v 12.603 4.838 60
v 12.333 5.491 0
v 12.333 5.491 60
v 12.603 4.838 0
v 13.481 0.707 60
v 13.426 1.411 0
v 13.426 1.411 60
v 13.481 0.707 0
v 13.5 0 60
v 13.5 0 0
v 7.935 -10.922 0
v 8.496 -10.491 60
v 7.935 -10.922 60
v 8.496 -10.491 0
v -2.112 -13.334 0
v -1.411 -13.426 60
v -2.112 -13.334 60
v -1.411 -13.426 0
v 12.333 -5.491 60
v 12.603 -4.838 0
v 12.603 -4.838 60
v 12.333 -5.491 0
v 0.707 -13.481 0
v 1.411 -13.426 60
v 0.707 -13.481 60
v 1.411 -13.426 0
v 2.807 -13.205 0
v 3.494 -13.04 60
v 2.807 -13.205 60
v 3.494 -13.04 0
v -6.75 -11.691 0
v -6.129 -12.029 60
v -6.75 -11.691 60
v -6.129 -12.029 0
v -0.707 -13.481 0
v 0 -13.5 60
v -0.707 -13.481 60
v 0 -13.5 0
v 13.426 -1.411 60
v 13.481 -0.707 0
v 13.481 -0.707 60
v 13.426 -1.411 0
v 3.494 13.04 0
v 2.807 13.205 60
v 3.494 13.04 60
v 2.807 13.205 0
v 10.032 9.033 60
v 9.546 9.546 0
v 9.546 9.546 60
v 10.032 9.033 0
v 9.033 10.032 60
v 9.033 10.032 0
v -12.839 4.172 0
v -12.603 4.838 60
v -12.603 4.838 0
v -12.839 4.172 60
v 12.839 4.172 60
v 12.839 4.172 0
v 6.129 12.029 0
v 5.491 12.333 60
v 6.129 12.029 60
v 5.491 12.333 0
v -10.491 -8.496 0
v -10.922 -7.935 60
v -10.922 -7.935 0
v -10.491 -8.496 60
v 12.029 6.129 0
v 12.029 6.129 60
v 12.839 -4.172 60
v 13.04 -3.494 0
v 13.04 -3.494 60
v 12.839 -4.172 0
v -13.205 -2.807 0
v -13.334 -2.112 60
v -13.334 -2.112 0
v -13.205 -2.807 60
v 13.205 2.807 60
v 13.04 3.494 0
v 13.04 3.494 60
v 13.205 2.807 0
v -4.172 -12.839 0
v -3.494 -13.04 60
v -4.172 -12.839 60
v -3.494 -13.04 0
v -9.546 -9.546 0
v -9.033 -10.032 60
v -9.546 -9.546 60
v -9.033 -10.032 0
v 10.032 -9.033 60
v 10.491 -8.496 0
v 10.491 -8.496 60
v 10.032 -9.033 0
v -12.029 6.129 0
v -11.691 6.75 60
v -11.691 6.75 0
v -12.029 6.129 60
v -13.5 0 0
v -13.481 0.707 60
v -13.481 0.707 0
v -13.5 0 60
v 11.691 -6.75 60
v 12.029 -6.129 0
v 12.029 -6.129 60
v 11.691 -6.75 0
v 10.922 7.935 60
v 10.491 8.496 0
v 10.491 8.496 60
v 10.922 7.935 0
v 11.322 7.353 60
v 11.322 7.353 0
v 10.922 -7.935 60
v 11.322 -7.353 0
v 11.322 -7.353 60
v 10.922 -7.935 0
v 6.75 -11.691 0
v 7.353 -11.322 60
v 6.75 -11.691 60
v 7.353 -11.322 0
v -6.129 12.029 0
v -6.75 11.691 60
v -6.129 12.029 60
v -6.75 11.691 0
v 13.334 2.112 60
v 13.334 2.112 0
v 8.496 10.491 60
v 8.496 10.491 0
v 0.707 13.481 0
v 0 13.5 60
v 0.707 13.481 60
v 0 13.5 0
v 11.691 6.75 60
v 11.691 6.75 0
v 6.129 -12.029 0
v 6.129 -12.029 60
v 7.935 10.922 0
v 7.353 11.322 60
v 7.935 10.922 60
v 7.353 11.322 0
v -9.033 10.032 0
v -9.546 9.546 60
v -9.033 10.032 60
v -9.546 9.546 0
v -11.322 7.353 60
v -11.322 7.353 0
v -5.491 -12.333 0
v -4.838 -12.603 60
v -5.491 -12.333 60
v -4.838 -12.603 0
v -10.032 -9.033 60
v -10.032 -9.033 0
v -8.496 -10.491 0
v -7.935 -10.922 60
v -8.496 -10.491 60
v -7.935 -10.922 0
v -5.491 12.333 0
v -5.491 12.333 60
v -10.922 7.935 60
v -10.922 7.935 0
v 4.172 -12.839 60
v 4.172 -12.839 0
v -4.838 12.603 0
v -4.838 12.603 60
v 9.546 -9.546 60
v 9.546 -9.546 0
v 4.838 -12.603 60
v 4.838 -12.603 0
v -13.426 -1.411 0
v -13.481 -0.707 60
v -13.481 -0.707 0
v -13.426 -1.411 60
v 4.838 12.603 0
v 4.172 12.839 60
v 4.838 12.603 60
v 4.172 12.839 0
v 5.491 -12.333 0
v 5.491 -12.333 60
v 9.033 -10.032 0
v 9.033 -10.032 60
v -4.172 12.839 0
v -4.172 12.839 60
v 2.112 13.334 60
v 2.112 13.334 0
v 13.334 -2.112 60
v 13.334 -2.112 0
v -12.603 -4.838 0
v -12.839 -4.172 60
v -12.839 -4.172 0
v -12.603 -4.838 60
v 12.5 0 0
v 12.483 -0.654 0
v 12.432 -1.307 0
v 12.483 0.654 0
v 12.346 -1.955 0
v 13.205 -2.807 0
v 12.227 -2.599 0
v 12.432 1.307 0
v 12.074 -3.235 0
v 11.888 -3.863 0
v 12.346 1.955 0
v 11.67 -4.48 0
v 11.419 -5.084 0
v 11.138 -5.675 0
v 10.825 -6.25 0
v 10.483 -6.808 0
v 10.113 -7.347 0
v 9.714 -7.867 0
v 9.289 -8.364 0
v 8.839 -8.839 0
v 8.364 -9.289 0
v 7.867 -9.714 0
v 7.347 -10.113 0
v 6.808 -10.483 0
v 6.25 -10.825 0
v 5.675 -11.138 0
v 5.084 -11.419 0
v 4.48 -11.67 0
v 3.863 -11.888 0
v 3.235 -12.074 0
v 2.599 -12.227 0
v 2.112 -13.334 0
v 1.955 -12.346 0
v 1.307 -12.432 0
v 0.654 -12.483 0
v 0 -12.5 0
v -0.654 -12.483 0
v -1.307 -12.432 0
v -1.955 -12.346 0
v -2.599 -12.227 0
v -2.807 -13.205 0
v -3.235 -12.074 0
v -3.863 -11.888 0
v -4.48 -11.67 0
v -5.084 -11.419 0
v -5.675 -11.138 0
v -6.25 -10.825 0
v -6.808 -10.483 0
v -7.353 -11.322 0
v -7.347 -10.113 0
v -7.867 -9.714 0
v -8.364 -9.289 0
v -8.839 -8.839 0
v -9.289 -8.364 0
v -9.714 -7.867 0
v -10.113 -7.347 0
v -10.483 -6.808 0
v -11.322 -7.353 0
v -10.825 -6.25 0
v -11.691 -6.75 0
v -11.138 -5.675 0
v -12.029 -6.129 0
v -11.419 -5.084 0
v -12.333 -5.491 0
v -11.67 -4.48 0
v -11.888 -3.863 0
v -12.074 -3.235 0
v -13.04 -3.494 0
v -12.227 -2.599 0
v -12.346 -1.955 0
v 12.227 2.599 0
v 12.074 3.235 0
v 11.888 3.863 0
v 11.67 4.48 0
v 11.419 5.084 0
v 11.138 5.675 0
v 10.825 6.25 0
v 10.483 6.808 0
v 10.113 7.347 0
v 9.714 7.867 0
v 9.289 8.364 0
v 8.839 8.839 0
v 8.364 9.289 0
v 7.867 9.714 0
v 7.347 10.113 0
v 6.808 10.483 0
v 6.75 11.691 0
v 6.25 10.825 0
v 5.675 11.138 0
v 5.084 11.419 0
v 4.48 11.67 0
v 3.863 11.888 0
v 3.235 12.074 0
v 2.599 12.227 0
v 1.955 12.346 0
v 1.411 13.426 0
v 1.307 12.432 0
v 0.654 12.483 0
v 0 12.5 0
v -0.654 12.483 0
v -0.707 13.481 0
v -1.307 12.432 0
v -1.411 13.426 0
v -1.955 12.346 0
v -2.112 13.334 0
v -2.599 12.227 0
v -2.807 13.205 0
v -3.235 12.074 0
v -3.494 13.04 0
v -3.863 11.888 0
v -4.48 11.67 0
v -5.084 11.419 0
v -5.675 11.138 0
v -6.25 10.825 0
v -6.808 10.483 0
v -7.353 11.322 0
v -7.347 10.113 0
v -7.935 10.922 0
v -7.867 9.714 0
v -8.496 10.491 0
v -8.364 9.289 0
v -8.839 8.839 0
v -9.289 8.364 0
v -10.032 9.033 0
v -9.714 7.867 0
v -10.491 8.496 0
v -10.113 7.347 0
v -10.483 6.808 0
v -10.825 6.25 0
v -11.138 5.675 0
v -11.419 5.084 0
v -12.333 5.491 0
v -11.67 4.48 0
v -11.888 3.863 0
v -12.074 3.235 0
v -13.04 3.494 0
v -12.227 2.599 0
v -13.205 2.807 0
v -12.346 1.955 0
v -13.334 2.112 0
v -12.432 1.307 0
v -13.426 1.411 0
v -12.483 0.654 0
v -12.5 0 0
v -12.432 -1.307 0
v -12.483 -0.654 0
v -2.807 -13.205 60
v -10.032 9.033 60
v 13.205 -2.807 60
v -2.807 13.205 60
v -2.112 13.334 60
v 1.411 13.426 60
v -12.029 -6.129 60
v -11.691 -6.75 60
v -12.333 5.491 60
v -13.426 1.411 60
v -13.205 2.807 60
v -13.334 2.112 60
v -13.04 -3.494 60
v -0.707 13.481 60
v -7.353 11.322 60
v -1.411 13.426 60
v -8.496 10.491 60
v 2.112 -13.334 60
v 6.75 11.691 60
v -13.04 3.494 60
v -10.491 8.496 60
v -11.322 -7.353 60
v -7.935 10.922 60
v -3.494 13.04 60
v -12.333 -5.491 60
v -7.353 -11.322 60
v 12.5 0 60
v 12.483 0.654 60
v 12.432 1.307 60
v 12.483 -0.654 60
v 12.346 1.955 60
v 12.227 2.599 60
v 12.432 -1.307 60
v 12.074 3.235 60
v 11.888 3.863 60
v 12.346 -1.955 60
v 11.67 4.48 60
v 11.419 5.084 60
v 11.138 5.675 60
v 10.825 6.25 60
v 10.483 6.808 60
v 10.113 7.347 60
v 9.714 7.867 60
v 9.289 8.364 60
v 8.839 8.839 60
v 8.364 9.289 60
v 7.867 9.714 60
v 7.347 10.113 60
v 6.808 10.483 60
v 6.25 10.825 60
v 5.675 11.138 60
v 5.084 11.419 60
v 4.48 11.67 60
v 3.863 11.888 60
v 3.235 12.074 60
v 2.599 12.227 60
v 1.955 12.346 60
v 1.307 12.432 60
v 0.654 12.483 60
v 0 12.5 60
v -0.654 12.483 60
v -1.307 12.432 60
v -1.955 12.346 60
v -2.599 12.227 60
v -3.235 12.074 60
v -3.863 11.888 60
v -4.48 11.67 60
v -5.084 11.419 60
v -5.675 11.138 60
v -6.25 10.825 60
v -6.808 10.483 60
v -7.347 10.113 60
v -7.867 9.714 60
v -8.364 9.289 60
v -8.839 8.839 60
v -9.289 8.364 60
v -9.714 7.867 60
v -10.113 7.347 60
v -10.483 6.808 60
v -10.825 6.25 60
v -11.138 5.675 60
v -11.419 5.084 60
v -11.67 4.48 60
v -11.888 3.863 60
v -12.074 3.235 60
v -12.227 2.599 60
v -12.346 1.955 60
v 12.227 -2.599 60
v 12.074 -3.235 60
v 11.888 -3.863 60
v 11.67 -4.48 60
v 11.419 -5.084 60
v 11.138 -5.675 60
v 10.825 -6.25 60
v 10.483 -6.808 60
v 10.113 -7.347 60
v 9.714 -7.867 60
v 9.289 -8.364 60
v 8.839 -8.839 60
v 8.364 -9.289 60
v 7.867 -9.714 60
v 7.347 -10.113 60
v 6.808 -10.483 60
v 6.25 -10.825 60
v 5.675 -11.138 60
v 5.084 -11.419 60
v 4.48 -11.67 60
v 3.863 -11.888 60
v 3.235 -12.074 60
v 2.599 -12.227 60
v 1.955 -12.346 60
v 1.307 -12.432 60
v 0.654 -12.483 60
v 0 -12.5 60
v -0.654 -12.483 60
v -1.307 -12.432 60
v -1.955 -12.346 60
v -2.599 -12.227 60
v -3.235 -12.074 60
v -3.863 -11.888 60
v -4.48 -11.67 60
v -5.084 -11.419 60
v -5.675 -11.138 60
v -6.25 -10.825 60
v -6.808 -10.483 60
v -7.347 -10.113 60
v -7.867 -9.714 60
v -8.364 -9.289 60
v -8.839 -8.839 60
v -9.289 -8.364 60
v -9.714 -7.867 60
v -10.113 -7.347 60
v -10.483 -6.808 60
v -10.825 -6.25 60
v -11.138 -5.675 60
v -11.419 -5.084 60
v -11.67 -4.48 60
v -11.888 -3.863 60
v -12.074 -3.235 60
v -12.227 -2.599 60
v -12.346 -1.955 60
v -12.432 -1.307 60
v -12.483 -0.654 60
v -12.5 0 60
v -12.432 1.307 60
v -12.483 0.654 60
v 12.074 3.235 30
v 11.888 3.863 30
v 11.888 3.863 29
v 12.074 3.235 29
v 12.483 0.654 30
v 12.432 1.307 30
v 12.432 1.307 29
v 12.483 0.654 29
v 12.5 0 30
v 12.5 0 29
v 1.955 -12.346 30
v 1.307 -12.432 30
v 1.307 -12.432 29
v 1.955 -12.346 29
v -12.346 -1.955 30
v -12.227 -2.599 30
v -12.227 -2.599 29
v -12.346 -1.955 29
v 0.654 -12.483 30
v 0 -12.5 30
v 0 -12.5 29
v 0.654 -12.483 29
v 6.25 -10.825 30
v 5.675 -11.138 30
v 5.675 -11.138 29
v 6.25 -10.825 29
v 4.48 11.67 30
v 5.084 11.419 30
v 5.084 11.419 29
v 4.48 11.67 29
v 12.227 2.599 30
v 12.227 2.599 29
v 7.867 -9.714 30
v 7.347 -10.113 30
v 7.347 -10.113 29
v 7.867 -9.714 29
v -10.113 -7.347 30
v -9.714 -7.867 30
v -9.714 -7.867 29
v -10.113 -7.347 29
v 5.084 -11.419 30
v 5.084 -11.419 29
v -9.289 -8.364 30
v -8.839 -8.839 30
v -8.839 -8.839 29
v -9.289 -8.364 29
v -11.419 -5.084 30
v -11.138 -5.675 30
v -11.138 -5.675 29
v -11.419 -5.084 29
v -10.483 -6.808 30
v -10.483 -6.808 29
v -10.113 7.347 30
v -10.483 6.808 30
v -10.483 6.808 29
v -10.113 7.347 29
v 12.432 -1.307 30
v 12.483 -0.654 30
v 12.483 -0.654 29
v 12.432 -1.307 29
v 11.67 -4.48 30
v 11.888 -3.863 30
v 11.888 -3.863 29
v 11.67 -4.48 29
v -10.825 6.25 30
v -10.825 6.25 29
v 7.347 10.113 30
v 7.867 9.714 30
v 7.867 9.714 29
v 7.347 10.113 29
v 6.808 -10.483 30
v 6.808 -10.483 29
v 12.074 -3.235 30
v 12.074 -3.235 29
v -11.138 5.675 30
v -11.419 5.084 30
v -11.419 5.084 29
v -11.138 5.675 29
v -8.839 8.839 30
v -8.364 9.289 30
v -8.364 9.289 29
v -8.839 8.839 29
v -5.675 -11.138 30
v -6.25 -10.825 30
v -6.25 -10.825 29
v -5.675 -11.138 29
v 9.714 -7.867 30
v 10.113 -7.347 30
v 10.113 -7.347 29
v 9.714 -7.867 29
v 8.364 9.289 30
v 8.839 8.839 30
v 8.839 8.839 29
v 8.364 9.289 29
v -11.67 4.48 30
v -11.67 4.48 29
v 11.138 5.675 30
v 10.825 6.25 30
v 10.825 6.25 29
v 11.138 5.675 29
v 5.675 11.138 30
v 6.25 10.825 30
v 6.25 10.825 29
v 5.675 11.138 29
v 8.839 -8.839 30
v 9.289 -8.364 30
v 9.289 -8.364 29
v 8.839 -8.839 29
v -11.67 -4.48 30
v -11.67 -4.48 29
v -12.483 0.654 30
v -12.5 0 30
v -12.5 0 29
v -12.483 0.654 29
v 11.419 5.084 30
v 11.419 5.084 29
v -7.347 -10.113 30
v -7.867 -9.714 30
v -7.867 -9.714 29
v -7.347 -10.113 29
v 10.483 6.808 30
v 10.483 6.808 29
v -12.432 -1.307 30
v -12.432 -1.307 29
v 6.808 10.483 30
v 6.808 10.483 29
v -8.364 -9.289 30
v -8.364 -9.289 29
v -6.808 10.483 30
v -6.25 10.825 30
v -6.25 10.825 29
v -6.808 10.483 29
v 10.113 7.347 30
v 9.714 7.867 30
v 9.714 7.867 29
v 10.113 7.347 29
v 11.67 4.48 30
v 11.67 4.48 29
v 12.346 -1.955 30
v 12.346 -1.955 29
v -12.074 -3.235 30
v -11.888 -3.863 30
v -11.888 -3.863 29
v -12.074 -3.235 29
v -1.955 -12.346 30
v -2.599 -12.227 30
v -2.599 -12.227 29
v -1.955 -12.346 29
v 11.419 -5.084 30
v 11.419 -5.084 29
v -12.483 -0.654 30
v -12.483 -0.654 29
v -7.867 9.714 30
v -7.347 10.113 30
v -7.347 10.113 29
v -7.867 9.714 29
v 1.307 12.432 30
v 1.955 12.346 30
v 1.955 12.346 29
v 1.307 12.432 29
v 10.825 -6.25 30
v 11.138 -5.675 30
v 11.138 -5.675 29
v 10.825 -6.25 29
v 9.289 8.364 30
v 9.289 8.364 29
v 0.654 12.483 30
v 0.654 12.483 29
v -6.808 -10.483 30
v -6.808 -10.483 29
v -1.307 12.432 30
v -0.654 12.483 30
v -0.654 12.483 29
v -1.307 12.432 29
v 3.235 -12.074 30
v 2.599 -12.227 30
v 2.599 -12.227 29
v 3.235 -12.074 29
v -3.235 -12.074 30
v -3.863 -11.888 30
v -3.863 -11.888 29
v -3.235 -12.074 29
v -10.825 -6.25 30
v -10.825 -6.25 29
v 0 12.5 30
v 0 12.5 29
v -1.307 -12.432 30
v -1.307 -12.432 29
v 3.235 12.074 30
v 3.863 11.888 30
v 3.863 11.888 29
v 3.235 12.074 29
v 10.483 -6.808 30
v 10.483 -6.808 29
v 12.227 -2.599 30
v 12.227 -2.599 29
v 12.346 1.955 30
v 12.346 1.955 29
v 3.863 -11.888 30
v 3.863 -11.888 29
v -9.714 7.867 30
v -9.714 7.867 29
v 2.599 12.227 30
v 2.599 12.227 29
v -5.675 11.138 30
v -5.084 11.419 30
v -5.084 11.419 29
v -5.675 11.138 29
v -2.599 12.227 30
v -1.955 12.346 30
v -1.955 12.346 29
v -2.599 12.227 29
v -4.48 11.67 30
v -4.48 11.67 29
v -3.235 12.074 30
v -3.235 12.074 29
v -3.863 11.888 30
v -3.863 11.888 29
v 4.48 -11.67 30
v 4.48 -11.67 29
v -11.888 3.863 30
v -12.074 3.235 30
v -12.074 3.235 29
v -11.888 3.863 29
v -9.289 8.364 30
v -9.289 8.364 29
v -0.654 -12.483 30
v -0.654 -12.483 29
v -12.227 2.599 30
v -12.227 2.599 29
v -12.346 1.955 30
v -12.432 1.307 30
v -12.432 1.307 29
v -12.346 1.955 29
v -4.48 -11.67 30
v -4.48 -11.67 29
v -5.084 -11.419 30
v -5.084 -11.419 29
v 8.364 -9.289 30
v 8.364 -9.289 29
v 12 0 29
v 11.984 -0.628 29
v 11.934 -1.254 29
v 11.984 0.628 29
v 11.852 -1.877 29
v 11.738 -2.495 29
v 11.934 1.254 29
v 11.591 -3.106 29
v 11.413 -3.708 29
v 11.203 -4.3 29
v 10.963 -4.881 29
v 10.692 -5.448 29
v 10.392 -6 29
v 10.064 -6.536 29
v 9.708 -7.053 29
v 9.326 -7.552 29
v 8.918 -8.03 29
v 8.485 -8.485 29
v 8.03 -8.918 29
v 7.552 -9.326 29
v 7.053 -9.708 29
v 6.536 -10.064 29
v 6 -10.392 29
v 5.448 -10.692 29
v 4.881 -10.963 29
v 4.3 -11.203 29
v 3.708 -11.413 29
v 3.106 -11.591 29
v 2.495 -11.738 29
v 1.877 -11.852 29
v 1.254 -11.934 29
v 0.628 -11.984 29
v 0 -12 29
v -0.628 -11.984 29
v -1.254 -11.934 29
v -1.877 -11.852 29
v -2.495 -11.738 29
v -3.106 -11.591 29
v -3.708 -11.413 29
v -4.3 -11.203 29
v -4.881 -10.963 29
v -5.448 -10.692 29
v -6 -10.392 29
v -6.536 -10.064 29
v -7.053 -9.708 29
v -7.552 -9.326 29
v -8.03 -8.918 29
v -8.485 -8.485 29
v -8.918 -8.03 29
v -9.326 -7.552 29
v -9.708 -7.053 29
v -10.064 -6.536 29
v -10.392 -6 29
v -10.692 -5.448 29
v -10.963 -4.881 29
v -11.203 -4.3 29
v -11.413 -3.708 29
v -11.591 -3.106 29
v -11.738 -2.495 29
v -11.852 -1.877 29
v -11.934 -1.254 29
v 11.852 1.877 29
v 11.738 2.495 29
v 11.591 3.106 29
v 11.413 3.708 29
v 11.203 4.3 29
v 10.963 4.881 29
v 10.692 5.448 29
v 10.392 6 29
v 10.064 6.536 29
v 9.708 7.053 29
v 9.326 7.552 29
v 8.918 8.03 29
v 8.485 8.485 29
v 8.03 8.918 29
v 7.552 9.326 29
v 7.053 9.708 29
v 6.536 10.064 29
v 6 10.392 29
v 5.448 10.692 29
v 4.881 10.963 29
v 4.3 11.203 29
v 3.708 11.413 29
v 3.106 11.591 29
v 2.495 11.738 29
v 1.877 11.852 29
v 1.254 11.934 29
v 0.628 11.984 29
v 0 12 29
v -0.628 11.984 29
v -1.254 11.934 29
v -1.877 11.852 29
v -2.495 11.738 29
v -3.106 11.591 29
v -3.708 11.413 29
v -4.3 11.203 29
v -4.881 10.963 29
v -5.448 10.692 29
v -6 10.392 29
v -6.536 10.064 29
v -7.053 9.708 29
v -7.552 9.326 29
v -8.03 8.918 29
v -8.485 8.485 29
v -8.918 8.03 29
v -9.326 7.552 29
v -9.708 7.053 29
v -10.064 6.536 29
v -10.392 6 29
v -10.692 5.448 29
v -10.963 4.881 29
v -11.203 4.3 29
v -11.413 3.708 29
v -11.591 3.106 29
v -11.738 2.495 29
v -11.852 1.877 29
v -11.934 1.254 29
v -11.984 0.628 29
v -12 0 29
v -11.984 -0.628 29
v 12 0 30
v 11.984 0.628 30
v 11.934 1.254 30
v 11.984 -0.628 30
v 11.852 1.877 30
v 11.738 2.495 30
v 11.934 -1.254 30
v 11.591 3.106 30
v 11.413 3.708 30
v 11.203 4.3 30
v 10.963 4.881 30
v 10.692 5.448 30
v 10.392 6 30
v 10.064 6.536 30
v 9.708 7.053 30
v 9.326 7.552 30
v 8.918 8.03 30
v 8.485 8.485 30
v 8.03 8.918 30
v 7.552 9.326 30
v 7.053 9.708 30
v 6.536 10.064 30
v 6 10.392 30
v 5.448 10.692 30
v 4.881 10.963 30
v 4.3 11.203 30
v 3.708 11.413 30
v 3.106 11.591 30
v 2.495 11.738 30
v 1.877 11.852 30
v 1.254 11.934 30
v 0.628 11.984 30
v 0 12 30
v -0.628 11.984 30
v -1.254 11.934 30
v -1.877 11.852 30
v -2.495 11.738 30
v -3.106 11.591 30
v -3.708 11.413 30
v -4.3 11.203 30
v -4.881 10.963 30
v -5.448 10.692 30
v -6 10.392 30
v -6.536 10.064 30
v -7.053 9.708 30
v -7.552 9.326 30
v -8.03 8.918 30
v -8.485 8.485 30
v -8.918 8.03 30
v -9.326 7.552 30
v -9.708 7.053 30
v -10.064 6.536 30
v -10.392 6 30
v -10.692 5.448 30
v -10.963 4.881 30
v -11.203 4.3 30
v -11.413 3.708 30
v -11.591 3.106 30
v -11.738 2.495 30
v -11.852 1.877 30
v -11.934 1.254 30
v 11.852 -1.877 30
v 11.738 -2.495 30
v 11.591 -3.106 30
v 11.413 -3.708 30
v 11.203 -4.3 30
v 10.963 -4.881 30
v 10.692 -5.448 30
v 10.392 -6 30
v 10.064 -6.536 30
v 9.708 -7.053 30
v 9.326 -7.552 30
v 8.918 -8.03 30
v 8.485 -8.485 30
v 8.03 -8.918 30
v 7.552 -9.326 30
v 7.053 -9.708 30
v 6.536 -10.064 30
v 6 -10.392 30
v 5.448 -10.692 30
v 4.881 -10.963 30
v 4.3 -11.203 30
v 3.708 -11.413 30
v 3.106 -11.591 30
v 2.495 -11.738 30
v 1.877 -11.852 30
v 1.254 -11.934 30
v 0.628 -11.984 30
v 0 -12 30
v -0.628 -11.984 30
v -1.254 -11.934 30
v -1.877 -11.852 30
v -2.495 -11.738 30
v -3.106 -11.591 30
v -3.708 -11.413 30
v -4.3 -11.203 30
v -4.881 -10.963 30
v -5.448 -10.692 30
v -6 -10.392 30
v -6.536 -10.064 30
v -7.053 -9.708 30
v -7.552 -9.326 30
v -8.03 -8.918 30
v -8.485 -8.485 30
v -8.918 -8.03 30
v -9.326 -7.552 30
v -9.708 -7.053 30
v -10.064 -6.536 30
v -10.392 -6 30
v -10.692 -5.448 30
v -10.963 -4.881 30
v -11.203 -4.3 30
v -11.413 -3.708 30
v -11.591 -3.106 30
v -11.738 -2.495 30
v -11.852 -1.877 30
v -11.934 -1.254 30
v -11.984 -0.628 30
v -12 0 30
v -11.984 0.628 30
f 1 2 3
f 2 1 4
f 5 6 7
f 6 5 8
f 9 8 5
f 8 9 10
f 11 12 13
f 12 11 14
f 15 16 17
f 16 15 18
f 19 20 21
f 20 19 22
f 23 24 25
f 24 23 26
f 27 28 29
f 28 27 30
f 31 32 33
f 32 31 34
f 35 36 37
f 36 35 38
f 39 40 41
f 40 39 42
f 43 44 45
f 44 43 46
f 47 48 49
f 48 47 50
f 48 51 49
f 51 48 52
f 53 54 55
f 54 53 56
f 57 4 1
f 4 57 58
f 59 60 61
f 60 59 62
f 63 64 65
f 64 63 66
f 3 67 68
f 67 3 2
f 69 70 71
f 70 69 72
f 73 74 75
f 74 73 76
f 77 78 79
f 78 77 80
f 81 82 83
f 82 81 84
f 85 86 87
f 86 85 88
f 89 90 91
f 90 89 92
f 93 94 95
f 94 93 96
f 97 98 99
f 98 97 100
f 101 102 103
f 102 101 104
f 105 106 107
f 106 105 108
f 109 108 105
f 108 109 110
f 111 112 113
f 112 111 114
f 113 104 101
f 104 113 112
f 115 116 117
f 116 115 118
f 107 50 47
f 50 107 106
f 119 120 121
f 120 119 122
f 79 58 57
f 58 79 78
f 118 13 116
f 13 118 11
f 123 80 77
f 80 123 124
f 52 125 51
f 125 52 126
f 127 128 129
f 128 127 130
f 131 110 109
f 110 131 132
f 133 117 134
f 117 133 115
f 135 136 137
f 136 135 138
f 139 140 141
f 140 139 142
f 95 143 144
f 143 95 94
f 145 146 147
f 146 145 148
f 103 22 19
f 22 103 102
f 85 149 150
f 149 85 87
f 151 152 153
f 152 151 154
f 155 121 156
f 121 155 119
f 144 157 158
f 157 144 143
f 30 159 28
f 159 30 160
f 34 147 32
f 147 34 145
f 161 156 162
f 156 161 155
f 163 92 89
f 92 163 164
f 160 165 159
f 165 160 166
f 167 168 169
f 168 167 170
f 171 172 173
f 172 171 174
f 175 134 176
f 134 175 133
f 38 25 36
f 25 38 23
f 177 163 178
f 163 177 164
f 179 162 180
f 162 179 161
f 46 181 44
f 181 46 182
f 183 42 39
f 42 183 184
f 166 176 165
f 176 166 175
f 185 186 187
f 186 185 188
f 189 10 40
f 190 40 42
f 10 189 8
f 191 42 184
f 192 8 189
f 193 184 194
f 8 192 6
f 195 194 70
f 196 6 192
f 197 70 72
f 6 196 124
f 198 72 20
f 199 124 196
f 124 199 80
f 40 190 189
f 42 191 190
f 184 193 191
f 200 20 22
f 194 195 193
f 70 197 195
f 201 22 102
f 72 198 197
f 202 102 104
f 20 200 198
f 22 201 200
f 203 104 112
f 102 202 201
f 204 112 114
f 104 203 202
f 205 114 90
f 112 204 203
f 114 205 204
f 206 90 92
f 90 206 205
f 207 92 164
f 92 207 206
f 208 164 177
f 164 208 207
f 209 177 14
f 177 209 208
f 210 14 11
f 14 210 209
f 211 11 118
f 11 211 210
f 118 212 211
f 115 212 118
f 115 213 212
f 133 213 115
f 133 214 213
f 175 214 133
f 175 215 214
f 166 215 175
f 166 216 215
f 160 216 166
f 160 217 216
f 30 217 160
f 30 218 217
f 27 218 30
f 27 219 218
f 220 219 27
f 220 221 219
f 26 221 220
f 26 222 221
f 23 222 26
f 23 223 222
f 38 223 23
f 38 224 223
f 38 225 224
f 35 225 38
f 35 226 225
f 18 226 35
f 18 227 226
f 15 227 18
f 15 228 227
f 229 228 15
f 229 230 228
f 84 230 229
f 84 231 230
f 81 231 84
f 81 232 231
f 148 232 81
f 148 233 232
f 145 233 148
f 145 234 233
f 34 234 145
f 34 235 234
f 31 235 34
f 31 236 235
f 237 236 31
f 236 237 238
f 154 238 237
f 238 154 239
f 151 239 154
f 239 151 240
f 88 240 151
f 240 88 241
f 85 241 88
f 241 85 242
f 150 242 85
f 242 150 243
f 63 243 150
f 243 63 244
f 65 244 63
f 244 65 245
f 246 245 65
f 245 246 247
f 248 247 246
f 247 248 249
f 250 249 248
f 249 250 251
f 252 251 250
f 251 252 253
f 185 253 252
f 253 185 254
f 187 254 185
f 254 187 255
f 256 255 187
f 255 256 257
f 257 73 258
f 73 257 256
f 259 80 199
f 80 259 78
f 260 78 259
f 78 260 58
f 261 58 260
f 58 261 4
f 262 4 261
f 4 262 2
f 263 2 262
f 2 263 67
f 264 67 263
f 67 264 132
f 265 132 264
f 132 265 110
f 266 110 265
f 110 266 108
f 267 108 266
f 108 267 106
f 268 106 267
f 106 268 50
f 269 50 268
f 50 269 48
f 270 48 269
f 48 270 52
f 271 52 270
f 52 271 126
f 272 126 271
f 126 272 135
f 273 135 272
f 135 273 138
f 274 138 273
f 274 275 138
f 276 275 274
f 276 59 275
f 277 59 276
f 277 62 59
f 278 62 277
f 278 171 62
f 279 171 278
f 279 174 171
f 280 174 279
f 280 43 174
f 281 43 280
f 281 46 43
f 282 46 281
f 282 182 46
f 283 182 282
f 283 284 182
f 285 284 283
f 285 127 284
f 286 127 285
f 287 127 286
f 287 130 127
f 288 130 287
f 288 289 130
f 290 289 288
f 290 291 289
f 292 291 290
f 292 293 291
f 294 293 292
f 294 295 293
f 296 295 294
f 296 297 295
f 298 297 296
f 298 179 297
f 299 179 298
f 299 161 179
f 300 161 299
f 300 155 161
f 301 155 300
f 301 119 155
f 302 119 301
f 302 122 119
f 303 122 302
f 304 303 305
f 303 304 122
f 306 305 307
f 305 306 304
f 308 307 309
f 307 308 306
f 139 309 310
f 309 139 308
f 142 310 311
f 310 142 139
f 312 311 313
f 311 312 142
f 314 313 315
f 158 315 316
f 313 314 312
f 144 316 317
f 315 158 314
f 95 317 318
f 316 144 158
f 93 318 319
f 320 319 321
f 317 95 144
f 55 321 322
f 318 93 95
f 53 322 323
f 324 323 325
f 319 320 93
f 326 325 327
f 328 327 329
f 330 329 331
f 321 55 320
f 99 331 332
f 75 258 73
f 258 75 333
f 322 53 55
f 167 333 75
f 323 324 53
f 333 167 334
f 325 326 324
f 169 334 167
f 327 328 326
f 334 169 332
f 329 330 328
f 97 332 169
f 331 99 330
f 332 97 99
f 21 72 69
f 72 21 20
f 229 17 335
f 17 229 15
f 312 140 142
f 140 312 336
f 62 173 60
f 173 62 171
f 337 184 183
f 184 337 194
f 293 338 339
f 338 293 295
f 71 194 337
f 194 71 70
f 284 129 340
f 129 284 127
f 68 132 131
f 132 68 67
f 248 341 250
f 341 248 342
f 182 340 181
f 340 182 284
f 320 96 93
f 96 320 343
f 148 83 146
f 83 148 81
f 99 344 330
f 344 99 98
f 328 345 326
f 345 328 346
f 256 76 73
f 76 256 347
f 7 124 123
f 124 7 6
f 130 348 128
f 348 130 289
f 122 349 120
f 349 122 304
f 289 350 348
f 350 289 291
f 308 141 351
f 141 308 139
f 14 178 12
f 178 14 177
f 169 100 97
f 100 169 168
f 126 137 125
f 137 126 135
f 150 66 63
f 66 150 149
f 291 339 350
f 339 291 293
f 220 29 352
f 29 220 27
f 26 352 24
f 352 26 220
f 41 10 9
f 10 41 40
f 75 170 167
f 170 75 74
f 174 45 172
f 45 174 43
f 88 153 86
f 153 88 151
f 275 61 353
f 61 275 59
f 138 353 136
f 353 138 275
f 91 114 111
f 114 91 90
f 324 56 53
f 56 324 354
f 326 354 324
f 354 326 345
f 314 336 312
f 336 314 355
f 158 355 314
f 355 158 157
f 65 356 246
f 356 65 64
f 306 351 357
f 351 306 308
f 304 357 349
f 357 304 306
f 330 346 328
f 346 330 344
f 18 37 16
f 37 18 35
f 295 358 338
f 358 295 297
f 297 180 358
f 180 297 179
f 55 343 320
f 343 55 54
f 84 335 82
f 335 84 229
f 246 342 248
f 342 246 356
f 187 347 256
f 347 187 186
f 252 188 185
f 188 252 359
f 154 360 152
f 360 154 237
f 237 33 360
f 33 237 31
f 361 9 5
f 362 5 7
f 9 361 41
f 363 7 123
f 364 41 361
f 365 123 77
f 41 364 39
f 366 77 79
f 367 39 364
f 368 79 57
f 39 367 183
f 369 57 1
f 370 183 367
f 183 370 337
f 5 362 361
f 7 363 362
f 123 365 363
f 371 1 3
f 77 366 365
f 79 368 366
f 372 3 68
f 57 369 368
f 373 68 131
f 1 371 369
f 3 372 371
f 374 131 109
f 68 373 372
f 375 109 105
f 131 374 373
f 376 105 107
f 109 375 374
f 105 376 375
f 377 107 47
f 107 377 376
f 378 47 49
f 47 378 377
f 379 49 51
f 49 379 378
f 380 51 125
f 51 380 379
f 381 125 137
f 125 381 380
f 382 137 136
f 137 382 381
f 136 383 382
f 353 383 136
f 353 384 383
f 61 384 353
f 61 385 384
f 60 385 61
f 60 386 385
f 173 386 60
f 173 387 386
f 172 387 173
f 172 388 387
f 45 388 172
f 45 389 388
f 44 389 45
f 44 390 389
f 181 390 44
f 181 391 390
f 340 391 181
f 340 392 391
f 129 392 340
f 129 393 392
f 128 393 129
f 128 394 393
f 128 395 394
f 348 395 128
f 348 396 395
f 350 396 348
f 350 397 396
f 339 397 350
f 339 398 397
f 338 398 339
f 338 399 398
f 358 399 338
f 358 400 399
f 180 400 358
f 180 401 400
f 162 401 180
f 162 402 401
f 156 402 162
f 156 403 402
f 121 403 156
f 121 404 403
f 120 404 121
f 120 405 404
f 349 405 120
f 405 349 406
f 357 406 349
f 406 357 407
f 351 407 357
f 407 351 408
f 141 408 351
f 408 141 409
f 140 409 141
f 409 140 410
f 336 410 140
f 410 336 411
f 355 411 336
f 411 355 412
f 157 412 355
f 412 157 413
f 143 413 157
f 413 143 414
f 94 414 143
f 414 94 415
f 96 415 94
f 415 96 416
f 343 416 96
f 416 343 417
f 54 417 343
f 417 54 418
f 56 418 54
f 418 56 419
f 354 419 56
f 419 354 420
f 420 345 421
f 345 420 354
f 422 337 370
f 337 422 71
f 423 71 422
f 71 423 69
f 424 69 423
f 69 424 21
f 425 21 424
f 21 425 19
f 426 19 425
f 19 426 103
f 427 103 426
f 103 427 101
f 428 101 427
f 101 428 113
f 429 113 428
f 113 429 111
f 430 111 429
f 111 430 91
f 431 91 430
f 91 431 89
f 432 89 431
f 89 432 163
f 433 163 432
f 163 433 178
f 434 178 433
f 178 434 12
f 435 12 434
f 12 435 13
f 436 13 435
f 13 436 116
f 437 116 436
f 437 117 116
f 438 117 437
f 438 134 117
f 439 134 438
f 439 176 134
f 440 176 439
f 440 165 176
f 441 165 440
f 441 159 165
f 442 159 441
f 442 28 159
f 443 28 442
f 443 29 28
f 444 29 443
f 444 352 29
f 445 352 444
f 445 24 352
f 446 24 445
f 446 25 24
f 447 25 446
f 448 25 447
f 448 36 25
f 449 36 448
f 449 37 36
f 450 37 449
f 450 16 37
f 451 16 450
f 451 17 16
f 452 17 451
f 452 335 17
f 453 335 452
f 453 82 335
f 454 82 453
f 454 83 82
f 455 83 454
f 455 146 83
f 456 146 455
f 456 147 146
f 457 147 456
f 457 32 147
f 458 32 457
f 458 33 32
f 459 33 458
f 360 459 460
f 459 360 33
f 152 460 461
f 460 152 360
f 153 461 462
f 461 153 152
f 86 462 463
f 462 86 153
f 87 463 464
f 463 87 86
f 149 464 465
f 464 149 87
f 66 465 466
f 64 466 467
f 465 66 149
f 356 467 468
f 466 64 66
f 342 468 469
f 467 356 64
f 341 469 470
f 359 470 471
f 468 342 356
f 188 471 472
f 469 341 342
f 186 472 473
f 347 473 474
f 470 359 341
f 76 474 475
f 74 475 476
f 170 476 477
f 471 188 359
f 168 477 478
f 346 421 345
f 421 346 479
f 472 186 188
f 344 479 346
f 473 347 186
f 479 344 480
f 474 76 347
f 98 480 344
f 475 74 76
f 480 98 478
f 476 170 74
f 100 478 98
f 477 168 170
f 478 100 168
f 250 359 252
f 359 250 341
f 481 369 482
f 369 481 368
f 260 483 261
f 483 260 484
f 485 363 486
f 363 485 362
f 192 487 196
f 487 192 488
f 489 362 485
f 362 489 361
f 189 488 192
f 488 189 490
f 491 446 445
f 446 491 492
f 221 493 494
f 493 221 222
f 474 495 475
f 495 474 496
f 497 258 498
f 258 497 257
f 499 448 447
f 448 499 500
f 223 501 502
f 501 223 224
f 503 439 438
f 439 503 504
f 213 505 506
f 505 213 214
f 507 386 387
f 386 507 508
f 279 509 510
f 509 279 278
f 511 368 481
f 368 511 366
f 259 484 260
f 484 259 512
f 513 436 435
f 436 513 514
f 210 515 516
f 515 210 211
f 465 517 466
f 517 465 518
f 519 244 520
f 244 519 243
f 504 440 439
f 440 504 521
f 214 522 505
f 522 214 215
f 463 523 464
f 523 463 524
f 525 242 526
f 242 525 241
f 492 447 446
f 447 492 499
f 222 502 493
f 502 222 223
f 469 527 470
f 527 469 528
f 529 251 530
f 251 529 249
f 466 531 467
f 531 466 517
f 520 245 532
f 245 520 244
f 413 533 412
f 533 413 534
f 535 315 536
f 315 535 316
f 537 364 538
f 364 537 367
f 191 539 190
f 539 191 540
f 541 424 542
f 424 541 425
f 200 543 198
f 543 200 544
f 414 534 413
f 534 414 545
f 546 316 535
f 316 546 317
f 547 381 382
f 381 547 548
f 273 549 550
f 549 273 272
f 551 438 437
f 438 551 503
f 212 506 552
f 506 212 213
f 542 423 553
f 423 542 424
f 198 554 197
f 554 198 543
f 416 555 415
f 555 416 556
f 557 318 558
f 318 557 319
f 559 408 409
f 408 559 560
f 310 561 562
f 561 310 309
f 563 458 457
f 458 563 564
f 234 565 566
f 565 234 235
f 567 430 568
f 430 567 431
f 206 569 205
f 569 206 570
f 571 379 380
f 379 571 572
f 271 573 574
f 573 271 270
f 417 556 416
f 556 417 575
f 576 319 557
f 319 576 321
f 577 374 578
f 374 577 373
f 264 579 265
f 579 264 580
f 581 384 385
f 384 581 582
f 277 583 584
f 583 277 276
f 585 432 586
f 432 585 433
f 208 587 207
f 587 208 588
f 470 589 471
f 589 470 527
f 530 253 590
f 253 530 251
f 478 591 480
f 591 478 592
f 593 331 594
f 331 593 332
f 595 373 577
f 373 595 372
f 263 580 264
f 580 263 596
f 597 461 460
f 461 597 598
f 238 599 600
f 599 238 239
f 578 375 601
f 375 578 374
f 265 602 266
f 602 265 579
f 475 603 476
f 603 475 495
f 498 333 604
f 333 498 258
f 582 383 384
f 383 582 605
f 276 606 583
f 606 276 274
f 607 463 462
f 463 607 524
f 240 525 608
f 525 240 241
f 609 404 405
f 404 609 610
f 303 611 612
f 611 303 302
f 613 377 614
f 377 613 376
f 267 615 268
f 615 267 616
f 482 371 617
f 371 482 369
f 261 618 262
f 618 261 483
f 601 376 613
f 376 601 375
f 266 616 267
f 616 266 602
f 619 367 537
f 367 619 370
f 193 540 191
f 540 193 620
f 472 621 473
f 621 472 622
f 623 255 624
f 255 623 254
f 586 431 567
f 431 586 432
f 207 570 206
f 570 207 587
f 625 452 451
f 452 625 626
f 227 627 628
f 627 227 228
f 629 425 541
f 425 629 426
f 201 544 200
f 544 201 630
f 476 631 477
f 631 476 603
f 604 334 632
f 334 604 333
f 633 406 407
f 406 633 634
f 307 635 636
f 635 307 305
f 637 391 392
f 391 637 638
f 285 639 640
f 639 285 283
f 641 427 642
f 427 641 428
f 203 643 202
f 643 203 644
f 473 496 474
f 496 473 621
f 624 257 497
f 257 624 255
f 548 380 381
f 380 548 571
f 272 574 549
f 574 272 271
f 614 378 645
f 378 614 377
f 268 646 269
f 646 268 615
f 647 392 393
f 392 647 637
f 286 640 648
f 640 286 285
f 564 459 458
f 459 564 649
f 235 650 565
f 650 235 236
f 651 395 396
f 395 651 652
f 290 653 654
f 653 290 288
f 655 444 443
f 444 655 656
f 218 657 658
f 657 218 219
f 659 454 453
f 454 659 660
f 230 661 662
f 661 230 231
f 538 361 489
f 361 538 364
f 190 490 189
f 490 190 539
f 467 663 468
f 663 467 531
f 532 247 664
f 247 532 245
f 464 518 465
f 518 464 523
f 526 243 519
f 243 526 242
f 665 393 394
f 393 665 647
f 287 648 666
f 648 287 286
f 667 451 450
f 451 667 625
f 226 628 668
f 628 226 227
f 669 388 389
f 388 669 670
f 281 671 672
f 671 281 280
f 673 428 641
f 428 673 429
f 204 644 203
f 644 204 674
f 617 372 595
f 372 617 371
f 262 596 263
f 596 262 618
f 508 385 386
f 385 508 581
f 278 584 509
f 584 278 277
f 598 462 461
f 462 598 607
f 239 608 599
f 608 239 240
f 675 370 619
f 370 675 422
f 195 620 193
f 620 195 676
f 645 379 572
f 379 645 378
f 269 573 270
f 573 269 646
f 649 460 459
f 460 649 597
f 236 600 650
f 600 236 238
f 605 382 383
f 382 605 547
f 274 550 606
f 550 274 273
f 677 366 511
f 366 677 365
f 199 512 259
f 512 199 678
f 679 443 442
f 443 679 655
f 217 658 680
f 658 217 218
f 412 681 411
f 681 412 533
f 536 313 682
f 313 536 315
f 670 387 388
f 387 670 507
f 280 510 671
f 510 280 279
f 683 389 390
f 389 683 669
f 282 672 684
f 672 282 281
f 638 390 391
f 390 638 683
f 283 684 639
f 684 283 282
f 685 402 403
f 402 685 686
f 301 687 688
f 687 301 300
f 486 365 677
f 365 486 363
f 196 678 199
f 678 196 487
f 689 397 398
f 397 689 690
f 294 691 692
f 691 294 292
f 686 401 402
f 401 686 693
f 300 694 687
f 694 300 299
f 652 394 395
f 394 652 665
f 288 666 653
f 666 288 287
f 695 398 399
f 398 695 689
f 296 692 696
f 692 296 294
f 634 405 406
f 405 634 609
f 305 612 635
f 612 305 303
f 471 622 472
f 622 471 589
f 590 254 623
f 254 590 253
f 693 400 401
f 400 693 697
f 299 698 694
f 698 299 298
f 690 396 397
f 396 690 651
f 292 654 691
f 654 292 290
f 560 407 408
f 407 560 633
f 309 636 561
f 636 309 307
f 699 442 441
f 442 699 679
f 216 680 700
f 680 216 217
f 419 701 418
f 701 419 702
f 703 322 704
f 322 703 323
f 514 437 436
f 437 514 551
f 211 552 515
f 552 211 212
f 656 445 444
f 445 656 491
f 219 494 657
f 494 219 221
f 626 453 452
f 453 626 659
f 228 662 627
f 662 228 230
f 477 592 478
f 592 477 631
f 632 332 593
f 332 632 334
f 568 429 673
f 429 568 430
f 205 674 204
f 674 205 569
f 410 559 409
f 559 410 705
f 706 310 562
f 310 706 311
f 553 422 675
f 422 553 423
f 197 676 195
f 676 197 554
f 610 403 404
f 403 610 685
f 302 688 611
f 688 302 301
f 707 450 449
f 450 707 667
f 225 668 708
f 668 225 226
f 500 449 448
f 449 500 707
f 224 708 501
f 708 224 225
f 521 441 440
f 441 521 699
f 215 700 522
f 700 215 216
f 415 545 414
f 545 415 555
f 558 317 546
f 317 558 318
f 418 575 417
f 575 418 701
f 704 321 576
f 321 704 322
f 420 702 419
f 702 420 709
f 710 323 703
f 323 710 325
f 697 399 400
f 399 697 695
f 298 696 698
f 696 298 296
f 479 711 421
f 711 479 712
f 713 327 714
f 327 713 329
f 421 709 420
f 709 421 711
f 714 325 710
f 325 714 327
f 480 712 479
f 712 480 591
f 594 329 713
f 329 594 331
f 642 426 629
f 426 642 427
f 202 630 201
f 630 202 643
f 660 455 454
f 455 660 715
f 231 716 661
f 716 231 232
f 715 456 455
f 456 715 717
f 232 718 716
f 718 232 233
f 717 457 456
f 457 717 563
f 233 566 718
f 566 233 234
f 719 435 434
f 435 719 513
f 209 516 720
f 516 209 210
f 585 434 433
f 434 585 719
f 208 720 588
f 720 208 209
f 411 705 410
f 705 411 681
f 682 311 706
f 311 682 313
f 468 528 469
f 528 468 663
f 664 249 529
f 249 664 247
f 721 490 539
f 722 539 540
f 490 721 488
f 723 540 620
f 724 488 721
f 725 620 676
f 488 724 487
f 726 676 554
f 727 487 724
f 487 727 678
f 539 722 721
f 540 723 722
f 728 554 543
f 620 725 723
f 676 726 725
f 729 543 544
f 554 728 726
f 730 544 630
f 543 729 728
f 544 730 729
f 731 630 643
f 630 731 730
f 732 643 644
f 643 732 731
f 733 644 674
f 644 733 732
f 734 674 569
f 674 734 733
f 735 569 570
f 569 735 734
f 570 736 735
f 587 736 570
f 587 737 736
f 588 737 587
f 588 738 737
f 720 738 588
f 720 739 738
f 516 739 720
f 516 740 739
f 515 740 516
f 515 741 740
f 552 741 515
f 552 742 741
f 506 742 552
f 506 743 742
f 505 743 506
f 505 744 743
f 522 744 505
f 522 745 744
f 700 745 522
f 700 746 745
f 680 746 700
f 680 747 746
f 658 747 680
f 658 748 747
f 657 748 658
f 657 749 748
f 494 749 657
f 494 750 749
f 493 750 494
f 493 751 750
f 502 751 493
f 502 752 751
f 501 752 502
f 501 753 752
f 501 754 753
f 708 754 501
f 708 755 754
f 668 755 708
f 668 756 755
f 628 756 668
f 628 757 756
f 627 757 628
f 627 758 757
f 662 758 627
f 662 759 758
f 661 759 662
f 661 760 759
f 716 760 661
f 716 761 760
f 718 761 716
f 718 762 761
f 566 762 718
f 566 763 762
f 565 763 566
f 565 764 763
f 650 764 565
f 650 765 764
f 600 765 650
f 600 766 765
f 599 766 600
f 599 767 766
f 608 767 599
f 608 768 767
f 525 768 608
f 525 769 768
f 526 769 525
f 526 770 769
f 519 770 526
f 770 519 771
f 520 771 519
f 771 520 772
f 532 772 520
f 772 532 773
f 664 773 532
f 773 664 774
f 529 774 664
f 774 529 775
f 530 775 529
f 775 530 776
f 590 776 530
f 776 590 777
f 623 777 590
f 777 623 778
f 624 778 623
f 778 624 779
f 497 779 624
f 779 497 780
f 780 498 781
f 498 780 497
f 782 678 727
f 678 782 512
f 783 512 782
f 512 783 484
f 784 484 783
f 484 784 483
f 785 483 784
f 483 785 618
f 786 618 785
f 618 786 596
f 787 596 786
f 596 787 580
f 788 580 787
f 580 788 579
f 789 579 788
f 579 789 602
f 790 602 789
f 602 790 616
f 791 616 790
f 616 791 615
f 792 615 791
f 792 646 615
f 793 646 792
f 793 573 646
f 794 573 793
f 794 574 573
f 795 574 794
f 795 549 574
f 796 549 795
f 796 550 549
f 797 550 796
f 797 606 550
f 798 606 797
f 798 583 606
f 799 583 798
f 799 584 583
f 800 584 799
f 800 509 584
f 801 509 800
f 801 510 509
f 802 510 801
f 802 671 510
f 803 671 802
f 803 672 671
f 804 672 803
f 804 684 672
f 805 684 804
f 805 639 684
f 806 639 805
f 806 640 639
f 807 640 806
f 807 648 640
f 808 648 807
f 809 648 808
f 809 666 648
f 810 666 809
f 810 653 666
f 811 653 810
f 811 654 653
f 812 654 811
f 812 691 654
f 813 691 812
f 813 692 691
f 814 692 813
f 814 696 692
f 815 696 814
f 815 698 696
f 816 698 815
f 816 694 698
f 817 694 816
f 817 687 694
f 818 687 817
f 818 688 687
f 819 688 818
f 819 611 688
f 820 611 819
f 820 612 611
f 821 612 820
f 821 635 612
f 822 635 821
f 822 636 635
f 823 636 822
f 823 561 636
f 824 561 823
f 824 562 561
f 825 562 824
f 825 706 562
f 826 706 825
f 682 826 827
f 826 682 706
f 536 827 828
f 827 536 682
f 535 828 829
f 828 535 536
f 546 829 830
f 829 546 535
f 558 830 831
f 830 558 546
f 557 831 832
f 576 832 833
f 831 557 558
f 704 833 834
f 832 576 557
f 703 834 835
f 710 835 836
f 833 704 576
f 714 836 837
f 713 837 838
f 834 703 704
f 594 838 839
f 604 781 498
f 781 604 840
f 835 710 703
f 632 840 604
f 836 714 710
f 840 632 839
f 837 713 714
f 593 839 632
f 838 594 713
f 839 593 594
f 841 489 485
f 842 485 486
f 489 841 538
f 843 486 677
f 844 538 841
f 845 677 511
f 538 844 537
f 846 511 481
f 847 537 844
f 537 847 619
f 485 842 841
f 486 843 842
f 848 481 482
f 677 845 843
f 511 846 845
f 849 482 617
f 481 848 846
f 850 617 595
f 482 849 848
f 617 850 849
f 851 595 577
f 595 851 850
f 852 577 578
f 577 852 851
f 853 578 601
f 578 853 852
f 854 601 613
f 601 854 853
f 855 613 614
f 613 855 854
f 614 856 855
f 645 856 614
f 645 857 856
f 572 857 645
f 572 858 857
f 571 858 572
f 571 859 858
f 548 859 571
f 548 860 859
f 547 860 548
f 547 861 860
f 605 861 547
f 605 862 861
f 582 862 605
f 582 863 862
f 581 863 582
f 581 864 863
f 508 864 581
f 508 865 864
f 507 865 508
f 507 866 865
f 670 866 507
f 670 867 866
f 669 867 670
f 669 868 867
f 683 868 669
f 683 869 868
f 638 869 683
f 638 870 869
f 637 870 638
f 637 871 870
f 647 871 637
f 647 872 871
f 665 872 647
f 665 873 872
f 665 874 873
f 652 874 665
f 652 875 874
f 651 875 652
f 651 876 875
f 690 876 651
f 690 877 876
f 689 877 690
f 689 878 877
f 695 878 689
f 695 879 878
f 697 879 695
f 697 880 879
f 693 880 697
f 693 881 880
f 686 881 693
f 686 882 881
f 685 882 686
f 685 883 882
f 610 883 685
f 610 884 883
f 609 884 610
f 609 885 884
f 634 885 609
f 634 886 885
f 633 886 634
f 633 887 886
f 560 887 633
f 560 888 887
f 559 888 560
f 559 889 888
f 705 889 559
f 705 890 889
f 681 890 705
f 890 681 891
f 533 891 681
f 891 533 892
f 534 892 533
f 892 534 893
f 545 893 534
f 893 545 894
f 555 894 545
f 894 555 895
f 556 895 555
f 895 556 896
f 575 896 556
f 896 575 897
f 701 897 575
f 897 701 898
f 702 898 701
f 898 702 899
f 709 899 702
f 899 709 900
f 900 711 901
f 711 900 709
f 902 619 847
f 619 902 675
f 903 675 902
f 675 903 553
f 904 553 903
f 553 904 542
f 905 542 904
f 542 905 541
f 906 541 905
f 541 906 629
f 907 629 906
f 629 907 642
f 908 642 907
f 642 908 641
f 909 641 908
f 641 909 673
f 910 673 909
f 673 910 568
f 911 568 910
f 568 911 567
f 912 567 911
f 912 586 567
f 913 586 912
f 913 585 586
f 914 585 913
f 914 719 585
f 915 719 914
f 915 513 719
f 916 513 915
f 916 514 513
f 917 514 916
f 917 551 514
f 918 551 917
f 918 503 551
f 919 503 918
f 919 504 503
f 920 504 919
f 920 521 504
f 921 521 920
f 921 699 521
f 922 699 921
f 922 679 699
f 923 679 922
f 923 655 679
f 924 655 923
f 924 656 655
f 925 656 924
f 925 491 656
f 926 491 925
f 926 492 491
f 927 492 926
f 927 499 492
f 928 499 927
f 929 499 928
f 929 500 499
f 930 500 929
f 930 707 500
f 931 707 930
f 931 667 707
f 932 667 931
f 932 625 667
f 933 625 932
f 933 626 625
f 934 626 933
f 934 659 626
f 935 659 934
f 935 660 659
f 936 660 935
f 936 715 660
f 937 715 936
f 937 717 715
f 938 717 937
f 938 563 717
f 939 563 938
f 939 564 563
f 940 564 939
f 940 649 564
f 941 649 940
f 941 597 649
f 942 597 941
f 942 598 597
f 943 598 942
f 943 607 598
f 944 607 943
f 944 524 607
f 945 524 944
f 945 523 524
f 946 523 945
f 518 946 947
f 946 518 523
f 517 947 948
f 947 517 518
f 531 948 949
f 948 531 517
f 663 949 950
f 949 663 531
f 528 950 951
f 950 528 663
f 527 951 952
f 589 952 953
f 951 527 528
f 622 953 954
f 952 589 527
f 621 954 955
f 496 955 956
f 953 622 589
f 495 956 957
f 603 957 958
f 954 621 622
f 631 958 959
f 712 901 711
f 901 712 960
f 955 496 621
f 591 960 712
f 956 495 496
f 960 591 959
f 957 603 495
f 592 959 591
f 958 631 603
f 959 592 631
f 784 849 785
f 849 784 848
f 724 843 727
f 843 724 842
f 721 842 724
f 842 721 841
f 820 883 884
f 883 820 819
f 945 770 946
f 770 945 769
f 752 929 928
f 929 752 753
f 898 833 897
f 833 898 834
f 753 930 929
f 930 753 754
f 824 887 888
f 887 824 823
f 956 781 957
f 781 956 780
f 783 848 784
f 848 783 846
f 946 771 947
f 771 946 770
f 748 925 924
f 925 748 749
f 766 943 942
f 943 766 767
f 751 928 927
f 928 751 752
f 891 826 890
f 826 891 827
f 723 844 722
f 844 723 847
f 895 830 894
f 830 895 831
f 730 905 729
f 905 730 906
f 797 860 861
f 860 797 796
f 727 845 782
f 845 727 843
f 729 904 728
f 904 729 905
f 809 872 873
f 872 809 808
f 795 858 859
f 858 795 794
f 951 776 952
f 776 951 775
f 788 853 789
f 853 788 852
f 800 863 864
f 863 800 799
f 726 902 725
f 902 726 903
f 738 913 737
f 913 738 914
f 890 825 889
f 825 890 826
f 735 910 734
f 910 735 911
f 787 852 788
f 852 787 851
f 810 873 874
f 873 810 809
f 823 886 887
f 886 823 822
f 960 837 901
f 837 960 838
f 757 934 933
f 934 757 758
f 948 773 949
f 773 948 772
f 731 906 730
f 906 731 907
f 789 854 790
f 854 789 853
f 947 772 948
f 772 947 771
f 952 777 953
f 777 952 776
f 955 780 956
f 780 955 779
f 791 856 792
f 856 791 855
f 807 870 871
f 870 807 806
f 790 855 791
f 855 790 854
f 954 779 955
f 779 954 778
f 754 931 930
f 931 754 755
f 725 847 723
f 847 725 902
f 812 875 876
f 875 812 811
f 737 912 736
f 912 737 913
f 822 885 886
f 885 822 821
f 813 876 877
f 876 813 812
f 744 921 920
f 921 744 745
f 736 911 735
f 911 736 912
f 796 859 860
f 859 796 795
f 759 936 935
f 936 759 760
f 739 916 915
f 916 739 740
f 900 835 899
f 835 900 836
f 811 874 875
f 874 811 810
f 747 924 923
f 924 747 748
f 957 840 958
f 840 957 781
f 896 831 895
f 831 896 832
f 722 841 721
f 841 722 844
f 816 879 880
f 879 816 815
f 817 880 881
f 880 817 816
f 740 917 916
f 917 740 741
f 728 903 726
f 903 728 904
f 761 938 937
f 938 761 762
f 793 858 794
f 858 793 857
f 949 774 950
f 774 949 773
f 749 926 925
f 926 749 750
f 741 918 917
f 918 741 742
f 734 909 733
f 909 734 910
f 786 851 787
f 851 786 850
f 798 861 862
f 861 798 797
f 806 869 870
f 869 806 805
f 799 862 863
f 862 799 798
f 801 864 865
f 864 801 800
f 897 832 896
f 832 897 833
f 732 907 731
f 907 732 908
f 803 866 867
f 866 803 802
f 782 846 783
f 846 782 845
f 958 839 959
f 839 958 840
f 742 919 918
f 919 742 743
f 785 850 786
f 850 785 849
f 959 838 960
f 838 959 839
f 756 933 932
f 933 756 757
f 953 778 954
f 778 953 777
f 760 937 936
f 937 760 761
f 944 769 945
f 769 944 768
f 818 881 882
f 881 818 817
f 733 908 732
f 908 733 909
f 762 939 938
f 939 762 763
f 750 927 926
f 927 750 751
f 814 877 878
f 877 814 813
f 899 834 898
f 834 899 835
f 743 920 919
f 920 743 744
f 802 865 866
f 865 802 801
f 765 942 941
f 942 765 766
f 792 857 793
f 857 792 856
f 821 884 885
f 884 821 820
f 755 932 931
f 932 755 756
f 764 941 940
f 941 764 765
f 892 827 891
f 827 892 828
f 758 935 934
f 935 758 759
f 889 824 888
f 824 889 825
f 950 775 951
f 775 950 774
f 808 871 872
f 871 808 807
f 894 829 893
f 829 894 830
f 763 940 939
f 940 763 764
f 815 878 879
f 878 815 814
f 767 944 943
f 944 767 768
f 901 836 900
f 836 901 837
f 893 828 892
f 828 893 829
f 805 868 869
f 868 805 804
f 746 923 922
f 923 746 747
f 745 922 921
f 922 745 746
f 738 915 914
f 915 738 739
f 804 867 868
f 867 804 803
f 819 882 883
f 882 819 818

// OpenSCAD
$fn = $preview ? 30 : 120;
epsilon = 0.001;

difference() {
    cylinder(h = 60, d = 27, center = false);
    translate([0, 0, -1])
        cylinder(h = 62, d = 25, center = false);
}
difference() {
    translate([0, 0, 29])
        cylinder(h = 1, d = 27, center = false);
    cylinder(h = 62, d = 24, center = false);
}
